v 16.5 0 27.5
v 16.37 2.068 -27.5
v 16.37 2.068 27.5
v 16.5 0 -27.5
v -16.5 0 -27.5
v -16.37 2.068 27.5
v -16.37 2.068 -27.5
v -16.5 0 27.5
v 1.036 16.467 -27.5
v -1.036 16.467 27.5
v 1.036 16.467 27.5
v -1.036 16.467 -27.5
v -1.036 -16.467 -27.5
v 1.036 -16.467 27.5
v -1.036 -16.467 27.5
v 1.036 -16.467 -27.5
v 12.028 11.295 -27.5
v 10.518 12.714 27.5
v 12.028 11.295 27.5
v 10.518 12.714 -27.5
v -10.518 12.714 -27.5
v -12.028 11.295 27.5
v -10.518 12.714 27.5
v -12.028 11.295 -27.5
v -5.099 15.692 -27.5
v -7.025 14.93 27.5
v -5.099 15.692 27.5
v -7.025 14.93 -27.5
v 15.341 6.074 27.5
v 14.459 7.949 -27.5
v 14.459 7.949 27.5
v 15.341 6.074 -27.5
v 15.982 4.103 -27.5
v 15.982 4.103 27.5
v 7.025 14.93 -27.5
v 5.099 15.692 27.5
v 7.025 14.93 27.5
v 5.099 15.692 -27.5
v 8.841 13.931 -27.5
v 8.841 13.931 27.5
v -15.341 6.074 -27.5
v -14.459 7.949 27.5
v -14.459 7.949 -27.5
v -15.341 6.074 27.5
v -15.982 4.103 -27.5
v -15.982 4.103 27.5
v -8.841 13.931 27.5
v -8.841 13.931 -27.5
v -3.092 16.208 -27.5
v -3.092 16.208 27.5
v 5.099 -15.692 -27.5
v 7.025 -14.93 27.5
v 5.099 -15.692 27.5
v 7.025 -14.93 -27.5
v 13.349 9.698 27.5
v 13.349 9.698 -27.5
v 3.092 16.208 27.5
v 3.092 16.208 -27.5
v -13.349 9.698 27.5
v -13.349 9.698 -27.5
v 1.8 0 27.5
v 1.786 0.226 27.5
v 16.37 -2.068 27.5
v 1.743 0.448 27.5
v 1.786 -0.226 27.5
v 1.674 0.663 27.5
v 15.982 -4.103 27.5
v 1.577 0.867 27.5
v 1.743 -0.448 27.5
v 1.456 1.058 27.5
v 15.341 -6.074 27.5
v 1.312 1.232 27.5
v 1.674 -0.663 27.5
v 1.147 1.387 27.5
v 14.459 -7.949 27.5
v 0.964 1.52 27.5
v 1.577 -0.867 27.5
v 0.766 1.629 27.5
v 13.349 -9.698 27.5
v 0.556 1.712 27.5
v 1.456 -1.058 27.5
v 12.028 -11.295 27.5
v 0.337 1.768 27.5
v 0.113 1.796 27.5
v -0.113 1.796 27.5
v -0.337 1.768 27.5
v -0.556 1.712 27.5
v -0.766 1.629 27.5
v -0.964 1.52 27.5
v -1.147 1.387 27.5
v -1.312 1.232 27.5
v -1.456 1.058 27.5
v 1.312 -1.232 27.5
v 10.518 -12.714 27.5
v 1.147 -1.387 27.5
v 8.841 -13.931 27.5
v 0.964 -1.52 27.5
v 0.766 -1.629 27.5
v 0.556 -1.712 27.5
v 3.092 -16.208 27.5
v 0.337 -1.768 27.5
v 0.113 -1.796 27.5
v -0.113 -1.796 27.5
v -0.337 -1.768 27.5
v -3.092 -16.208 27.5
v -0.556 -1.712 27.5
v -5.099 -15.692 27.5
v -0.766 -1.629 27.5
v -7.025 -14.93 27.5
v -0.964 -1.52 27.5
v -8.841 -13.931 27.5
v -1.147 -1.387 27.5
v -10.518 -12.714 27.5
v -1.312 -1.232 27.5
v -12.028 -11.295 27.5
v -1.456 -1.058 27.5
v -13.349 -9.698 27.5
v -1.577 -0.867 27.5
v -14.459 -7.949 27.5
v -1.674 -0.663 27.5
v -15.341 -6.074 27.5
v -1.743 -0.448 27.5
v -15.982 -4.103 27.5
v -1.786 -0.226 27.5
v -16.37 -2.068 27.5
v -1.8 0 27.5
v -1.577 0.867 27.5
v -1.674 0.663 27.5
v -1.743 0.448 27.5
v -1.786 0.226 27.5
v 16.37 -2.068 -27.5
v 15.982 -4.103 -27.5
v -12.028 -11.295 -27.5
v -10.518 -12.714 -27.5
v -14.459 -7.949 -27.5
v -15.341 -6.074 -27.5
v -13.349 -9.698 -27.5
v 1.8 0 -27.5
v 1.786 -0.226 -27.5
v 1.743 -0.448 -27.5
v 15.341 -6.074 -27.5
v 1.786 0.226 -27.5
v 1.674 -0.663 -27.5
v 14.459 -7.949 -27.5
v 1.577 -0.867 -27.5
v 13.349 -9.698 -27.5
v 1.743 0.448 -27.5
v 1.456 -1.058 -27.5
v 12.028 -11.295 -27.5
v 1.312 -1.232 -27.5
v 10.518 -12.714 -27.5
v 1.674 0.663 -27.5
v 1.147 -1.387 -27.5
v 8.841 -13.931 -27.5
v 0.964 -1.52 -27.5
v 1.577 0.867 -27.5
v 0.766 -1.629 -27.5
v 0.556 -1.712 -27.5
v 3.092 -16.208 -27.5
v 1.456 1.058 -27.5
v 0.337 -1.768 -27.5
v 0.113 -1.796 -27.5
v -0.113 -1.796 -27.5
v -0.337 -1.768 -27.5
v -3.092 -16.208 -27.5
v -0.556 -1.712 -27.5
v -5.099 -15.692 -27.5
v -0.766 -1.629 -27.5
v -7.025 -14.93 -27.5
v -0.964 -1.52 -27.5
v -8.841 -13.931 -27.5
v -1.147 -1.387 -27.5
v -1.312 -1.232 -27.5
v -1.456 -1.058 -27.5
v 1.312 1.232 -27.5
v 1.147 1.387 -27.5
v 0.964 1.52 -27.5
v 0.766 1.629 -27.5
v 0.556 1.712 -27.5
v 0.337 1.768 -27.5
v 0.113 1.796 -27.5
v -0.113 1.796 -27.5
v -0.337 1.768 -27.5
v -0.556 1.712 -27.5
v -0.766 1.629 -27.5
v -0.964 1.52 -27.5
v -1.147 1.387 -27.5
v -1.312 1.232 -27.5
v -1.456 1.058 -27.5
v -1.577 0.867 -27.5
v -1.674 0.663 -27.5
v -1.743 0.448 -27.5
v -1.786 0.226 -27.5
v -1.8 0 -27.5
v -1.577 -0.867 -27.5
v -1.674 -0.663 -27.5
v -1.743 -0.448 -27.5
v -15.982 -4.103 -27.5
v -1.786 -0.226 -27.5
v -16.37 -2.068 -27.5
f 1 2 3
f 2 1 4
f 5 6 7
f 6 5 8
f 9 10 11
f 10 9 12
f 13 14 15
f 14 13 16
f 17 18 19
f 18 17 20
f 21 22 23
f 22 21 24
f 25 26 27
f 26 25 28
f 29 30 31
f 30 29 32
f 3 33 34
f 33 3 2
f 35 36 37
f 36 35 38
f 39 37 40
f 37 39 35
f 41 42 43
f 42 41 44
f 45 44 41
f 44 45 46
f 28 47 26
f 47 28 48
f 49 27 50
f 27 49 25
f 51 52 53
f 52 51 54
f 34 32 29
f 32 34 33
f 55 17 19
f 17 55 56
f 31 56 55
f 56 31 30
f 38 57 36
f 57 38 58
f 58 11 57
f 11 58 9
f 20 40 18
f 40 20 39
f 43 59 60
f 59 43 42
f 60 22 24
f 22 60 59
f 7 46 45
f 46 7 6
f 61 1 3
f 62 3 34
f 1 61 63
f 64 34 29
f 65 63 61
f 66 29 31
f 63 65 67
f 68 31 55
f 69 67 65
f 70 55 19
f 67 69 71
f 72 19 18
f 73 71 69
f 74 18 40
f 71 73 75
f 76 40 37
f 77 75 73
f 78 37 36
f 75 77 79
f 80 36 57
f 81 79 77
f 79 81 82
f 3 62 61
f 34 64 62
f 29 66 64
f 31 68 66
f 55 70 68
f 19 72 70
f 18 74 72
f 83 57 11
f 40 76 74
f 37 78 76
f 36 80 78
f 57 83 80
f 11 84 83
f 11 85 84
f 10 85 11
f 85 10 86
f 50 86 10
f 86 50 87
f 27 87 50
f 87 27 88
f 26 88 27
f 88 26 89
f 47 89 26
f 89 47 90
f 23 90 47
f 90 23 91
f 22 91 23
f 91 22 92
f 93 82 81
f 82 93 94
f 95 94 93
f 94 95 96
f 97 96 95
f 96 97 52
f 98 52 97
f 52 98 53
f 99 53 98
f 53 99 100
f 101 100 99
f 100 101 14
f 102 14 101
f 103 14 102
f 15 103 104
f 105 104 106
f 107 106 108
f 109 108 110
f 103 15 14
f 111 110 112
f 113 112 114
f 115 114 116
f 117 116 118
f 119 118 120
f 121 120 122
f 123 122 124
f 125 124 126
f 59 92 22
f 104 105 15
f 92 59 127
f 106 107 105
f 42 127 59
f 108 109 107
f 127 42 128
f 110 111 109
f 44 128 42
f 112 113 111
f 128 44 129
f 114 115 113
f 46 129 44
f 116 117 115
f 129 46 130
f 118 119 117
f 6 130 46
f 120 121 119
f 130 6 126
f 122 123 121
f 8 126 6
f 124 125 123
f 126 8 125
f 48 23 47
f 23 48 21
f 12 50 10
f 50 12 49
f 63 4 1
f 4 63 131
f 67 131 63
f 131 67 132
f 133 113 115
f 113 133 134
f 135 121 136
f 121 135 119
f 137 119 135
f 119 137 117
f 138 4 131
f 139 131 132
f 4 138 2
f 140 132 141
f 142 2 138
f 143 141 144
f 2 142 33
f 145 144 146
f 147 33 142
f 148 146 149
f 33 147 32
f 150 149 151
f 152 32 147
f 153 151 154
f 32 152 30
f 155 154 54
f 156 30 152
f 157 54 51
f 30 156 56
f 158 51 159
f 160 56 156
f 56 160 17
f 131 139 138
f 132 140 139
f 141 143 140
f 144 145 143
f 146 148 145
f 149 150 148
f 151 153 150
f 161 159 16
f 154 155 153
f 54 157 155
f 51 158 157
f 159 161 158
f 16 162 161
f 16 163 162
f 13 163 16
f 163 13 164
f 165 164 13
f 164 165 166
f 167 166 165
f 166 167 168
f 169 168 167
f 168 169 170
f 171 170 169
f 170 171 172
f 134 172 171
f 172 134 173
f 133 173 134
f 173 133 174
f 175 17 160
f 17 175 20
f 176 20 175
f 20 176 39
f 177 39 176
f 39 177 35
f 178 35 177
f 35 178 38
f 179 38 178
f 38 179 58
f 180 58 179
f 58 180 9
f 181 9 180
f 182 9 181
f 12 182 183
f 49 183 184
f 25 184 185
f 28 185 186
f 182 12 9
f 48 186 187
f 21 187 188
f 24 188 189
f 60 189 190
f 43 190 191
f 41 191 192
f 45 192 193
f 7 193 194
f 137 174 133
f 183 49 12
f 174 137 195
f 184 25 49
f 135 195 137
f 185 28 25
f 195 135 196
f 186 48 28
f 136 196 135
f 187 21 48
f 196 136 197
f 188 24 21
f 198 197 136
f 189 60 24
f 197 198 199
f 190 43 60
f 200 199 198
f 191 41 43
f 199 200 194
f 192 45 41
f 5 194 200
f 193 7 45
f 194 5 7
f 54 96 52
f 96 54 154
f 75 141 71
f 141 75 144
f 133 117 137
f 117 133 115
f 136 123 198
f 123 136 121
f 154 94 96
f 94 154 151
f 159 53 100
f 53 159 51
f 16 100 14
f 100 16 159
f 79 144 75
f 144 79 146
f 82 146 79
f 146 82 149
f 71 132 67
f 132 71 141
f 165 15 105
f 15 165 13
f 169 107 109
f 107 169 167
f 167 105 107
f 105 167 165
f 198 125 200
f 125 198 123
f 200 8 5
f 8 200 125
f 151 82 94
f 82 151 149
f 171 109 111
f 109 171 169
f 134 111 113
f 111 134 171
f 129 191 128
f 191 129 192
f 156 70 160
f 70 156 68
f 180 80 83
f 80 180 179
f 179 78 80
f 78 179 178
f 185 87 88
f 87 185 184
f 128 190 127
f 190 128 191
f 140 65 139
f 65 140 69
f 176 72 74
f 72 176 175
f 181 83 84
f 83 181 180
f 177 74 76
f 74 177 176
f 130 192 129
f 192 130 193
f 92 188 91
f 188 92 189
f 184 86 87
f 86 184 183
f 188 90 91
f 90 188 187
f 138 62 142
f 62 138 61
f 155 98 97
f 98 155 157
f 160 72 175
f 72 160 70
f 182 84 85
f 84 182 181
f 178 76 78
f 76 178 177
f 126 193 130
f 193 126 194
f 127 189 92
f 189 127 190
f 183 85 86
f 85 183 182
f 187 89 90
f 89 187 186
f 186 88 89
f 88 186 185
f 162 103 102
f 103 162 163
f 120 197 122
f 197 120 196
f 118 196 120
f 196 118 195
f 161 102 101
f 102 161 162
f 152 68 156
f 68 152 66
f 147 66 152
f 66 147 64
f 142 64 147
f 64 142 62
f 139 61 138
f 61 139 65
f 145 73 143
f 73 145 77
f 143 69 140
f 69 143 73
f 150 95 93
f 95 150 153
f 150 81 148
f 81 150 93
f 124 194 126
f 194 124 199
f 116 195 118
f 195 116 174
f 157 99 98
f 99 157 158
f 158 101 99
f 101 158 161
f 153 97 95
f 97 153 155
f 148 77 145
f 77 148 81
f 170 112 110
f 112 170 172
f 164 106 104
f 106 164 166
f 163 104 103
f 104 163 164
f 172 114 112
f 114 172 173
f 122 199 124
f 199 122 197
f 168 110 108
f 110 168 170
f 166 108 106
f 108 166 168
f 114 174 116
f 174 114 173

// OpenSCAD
$fn = 50;


difference() {
	union() {
		translate(v = [0, 0, -27.5000000000]) {
			cylinder(h = 55, r = 16.5000000000);
		}
	}
	union() {
		translate(v = [0, 0, -100.0000000000]) {
			cylinder(h = 200, r = 1.8000000000);
		}
	}
}
